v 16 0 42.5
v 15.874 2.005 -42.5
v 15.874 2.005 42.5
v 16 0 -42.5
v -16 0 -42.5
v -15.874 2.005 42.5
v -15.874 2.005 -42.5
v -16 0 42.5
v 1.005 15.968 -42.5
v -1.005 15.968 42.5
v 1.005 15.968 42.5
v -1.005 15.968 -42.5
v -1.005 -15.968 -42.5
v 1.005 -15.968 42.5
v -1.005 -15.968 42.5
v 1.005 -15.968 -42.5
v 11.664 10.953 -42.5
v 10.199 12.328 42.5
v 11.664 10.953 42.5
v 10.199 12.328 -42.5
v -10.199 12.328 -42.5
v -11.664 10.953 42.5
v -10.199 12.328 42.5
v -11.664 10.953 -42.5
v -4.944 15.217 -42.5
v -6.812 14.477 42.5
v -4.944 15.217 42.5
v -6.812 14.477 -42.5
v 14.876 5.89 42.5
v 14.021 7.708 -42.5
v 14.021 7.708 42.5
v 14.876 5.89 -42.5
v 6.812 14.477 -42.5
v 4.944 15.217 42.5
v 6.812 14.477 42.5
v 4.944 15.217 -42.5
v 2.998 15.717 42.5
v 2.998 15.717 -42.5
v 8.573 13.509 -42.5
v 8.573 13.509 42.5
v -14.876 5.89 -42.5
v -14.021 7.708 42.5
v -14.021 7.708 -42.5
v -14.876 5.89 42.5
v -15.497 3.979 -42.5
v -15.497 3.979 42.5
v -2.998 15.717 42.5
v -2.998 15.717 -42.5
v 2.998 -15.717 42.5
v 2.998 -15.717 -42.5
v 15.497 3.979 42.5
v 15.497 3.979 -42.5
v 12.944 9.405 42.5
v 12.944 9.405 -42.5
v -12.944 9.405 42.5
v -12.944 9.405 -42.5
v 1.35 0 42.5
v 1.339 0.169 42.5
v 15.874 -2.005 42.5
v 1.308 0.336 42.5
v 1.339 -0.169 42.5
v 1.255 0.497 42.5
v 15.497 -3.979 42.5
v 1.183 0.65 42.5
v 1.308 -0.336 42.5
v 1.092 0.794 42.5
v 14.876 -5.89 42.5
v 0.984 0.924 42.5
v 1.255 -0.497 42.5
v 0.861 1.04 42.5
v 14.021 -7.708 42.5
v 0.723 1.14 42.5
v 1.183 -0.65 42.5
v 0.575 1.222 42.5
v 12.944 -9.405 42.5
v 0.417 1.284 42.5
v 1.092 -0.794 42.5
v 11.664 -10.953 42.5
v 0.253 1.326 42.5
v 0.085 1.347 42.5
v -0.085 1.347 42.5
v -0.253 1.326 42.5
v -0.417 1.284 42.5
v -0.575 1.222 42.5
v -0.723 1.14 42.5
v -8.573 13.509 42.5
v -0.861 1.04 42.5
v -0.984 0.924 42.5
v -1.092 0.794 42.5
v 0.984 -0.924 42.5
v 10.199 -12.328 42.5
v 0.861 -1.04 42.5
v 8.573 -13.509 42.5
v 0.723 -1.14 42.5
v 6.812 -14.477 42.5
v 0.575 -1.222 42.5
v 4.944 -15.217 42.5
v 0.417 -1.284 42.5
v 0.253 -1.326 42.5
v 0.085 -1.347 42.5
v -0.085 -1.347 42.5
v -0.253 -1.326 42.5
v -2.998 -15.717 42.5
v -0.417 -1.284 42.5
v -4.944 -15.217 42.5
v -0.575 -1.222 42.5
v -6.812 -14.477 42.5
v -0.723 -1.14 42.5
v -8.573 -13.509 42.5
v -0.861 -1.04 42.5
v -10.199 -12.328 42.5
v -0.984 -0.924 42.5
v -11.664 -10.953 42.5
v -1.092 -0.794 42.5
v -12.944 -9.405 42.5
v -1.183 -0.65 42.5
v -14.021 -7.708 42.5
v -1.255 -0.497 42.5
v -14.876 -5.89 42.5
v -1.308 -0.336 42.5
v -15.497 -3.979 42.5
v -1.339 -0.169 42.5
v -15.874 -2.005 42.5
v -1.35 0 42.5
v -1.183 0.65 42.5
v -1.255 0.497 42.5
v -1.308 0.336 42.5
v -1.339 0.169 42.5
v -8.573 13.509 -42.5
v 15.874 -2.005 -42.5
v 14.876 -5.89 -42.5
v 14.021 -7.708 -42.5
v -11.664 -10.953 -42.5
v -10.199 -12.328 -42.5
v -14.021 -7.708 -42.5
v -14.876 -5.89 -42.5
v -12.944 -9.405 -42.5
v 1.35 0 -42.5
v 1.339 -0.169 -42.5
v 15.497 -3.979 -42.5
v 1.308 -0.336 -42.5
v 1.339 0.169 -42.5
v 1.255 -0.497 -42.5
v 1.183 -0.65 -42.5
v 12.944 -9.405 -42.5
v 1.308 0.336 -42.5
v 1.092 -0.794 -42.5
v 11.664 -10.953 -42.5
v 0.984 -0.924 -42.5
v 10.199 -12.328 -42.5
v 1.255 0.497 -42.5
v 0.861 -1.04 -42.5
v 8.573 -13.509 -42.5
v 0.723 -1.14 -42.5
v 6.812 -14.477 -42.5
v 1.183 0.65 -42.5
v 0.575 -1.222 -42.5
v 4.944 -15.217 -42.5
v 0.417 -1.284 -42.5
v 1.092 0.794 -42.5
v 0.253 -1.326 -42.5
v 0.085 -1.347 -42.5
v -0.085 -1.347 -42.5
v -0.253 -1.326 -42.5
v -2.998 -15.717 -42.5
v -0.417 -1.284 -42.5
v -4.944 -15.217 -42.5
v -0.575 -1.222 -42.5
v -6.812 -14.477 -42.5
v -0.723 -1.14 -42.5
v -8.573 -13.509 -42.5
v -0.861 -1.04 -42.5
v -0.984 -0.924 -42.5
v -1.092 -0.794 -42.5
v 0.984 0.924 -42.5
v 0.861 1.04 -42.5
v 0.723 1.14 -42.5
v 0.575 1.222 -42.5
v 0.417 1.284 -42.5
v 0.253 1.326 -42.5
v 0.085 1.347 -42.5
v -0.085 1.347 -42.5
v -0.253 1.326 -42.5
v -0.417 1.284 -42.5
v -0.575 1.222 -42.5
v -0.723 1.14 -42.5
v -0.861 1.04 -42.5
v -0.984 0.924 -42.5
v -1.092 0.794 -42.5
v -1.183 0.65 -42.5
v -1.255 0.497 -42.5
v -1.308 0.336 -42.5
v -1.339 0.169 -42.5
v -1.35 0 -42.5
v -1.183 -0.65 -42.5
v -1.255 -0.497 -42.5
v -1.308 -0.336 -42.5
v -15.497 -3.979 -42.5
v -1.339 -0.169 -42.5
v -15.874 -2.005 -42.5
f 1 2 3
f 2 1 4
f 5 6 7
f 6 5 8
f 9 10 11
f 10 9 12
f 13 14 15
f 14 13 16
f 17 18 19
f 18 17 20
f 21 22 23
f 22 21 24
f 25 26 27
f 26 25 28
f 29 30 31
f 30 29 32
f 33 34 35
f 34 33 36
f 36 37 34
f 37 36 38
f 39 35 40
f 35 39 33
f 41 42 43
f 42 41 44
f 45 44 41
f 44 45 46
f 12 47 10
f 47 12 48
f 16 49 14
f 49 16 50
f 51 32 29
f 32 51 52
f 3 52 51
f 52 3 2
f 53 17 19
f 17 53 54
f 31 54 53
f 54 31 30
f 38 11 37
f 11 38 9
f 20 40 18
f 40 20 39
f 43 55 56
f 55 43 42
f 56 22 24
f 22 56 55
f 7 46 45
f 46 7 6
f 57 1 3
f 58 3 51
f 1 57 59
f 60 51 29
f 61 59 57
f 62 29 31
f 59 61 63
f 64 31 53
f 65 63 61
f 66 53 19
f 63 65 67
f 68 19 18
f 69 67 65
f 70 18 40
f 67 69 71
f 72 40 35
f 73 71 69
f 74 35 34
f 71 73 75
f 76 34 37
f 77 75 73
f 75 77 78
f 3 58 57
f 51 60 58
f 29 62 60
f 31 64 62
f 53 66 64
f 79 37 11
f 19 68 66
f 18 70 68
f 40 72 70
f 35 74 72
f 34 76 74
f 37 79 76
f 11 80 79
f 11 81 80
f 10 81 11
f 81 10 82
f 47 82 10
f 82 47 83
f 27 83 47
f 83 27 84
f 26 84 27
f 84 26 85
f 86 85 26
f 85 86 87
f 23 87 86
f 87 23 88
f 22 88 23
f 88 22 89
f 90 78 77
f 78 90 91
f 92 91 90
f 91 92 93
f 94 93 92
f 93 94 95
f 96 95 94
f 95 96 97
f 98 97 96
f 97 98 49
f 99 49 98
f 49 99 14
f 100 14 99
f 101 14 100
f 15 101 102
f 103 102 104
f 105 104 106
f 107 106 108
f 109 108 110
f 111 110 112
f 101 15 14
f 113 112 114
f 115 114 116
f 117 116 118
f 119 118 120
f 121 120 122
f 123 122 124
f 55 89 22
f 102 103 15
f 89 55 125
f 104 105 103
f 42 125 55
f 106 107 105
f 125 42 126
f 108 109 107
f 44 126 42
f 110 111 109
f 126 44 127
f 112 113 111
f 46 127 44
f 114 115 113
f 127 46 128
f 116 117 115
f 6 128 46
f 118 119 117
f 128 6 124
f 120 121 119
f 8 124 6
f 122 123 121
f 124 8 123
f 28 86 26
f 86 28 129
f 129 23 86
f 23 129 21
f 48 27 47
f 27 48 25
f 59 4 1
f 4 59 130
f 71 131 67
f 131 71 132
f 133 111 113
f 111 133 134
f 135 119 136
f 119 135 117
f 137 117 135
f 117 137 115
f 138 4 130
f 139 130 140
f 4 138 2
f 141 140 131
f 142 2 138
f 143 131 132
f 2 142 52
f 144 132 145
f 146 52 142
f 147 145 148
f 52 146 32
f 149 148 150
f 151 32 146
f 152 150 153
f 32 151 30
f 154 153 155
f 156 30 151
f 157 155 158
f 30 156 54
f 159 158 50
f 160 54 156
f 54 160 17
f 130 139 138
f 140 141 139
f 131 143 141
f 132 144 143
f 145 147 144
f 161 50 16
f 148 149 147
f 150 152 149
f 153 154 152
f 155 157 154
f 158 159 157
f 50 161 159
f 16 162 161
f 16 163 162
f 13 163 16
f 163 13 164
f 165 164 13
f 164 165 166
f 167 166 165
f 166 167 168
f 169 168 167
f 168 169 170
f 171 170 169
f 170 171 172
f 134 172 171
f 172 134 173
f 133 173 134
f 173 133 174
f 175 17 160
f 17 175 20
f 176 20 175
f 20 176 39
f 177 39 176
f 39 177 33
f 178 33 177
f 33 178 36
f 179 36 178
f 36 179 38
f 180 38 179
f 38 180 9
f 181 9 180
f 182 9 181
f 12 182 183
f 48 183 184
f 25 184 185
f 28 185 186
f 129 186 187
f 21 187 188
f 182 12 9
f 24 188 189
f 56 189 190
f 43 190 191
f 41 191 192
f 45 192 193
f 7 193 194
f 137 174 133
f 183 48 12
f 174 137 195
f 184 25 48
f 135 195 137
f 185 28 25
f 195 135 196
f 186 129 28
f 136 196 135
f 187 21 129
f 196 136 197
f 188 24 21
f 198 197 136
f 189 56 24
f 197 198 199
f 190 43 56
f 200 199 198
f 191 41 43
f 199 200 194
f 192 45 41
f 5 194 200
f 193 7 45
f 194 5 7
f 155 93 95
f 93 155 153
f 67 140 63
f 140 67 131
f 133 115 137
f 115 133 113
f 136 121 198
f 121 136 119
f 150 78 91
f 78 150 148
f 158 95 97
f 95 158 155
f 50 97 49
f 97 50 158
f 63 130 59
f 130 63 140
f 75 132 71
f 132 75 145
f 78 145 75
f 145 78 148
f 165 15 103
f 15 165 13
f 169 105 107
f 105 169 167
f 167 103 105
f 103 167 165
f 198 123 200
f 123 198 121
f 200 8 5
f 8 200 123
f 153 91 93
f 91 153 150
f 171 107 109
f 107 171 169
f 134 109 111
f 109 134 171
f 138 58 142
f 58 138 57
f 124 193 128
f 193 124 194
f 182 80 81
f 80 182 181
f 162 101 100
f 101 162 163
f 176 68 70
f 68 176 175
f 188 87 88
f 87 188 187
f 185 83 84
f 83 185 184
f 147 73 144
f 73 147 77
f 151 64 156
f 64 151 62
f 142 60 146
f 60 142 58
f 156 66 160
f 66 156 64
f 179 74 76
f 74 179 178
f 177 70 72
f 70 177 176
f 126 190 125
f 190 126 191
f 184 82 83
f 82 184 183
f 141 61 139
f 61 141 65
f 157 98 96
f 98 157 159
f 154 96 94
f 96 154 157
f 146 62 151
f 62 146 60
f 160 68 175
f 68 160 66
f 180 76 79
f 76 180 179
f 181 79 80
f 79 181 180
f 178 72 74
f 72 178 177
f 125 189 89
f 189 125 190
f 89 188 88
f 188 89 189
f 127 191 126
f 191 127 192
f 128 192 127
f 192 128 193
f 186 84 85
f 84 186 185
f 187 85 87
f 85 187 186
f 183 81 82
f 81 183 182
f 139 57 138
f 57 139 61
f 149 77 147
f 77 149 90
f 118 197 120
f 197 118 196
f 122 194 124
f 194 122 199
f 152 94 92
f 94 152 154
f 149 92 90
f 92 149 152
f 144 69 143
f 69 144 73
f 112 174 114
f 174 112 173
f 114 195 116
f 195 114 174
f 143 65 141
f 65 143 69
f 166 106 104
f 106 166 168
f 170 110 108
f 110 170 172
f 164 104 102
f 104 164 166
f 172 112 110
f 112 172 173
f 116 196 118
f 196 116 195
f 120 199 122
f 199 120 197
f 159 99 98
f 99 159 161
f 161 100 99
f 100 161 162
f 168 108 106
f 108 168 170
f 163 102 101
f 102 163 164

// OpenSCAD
$fn = 50;


difference() {
	union() {
		translate(v = [0, 0, -42.5000000000]) {
			cylinder(h = 85, r = 16.0000000000);
		}
	}
	union() {
		translate(v = [0, 0, -100.0000000000]) {
			cylinder(h = 200, r = 1.3500000000);
		}
	}
}
